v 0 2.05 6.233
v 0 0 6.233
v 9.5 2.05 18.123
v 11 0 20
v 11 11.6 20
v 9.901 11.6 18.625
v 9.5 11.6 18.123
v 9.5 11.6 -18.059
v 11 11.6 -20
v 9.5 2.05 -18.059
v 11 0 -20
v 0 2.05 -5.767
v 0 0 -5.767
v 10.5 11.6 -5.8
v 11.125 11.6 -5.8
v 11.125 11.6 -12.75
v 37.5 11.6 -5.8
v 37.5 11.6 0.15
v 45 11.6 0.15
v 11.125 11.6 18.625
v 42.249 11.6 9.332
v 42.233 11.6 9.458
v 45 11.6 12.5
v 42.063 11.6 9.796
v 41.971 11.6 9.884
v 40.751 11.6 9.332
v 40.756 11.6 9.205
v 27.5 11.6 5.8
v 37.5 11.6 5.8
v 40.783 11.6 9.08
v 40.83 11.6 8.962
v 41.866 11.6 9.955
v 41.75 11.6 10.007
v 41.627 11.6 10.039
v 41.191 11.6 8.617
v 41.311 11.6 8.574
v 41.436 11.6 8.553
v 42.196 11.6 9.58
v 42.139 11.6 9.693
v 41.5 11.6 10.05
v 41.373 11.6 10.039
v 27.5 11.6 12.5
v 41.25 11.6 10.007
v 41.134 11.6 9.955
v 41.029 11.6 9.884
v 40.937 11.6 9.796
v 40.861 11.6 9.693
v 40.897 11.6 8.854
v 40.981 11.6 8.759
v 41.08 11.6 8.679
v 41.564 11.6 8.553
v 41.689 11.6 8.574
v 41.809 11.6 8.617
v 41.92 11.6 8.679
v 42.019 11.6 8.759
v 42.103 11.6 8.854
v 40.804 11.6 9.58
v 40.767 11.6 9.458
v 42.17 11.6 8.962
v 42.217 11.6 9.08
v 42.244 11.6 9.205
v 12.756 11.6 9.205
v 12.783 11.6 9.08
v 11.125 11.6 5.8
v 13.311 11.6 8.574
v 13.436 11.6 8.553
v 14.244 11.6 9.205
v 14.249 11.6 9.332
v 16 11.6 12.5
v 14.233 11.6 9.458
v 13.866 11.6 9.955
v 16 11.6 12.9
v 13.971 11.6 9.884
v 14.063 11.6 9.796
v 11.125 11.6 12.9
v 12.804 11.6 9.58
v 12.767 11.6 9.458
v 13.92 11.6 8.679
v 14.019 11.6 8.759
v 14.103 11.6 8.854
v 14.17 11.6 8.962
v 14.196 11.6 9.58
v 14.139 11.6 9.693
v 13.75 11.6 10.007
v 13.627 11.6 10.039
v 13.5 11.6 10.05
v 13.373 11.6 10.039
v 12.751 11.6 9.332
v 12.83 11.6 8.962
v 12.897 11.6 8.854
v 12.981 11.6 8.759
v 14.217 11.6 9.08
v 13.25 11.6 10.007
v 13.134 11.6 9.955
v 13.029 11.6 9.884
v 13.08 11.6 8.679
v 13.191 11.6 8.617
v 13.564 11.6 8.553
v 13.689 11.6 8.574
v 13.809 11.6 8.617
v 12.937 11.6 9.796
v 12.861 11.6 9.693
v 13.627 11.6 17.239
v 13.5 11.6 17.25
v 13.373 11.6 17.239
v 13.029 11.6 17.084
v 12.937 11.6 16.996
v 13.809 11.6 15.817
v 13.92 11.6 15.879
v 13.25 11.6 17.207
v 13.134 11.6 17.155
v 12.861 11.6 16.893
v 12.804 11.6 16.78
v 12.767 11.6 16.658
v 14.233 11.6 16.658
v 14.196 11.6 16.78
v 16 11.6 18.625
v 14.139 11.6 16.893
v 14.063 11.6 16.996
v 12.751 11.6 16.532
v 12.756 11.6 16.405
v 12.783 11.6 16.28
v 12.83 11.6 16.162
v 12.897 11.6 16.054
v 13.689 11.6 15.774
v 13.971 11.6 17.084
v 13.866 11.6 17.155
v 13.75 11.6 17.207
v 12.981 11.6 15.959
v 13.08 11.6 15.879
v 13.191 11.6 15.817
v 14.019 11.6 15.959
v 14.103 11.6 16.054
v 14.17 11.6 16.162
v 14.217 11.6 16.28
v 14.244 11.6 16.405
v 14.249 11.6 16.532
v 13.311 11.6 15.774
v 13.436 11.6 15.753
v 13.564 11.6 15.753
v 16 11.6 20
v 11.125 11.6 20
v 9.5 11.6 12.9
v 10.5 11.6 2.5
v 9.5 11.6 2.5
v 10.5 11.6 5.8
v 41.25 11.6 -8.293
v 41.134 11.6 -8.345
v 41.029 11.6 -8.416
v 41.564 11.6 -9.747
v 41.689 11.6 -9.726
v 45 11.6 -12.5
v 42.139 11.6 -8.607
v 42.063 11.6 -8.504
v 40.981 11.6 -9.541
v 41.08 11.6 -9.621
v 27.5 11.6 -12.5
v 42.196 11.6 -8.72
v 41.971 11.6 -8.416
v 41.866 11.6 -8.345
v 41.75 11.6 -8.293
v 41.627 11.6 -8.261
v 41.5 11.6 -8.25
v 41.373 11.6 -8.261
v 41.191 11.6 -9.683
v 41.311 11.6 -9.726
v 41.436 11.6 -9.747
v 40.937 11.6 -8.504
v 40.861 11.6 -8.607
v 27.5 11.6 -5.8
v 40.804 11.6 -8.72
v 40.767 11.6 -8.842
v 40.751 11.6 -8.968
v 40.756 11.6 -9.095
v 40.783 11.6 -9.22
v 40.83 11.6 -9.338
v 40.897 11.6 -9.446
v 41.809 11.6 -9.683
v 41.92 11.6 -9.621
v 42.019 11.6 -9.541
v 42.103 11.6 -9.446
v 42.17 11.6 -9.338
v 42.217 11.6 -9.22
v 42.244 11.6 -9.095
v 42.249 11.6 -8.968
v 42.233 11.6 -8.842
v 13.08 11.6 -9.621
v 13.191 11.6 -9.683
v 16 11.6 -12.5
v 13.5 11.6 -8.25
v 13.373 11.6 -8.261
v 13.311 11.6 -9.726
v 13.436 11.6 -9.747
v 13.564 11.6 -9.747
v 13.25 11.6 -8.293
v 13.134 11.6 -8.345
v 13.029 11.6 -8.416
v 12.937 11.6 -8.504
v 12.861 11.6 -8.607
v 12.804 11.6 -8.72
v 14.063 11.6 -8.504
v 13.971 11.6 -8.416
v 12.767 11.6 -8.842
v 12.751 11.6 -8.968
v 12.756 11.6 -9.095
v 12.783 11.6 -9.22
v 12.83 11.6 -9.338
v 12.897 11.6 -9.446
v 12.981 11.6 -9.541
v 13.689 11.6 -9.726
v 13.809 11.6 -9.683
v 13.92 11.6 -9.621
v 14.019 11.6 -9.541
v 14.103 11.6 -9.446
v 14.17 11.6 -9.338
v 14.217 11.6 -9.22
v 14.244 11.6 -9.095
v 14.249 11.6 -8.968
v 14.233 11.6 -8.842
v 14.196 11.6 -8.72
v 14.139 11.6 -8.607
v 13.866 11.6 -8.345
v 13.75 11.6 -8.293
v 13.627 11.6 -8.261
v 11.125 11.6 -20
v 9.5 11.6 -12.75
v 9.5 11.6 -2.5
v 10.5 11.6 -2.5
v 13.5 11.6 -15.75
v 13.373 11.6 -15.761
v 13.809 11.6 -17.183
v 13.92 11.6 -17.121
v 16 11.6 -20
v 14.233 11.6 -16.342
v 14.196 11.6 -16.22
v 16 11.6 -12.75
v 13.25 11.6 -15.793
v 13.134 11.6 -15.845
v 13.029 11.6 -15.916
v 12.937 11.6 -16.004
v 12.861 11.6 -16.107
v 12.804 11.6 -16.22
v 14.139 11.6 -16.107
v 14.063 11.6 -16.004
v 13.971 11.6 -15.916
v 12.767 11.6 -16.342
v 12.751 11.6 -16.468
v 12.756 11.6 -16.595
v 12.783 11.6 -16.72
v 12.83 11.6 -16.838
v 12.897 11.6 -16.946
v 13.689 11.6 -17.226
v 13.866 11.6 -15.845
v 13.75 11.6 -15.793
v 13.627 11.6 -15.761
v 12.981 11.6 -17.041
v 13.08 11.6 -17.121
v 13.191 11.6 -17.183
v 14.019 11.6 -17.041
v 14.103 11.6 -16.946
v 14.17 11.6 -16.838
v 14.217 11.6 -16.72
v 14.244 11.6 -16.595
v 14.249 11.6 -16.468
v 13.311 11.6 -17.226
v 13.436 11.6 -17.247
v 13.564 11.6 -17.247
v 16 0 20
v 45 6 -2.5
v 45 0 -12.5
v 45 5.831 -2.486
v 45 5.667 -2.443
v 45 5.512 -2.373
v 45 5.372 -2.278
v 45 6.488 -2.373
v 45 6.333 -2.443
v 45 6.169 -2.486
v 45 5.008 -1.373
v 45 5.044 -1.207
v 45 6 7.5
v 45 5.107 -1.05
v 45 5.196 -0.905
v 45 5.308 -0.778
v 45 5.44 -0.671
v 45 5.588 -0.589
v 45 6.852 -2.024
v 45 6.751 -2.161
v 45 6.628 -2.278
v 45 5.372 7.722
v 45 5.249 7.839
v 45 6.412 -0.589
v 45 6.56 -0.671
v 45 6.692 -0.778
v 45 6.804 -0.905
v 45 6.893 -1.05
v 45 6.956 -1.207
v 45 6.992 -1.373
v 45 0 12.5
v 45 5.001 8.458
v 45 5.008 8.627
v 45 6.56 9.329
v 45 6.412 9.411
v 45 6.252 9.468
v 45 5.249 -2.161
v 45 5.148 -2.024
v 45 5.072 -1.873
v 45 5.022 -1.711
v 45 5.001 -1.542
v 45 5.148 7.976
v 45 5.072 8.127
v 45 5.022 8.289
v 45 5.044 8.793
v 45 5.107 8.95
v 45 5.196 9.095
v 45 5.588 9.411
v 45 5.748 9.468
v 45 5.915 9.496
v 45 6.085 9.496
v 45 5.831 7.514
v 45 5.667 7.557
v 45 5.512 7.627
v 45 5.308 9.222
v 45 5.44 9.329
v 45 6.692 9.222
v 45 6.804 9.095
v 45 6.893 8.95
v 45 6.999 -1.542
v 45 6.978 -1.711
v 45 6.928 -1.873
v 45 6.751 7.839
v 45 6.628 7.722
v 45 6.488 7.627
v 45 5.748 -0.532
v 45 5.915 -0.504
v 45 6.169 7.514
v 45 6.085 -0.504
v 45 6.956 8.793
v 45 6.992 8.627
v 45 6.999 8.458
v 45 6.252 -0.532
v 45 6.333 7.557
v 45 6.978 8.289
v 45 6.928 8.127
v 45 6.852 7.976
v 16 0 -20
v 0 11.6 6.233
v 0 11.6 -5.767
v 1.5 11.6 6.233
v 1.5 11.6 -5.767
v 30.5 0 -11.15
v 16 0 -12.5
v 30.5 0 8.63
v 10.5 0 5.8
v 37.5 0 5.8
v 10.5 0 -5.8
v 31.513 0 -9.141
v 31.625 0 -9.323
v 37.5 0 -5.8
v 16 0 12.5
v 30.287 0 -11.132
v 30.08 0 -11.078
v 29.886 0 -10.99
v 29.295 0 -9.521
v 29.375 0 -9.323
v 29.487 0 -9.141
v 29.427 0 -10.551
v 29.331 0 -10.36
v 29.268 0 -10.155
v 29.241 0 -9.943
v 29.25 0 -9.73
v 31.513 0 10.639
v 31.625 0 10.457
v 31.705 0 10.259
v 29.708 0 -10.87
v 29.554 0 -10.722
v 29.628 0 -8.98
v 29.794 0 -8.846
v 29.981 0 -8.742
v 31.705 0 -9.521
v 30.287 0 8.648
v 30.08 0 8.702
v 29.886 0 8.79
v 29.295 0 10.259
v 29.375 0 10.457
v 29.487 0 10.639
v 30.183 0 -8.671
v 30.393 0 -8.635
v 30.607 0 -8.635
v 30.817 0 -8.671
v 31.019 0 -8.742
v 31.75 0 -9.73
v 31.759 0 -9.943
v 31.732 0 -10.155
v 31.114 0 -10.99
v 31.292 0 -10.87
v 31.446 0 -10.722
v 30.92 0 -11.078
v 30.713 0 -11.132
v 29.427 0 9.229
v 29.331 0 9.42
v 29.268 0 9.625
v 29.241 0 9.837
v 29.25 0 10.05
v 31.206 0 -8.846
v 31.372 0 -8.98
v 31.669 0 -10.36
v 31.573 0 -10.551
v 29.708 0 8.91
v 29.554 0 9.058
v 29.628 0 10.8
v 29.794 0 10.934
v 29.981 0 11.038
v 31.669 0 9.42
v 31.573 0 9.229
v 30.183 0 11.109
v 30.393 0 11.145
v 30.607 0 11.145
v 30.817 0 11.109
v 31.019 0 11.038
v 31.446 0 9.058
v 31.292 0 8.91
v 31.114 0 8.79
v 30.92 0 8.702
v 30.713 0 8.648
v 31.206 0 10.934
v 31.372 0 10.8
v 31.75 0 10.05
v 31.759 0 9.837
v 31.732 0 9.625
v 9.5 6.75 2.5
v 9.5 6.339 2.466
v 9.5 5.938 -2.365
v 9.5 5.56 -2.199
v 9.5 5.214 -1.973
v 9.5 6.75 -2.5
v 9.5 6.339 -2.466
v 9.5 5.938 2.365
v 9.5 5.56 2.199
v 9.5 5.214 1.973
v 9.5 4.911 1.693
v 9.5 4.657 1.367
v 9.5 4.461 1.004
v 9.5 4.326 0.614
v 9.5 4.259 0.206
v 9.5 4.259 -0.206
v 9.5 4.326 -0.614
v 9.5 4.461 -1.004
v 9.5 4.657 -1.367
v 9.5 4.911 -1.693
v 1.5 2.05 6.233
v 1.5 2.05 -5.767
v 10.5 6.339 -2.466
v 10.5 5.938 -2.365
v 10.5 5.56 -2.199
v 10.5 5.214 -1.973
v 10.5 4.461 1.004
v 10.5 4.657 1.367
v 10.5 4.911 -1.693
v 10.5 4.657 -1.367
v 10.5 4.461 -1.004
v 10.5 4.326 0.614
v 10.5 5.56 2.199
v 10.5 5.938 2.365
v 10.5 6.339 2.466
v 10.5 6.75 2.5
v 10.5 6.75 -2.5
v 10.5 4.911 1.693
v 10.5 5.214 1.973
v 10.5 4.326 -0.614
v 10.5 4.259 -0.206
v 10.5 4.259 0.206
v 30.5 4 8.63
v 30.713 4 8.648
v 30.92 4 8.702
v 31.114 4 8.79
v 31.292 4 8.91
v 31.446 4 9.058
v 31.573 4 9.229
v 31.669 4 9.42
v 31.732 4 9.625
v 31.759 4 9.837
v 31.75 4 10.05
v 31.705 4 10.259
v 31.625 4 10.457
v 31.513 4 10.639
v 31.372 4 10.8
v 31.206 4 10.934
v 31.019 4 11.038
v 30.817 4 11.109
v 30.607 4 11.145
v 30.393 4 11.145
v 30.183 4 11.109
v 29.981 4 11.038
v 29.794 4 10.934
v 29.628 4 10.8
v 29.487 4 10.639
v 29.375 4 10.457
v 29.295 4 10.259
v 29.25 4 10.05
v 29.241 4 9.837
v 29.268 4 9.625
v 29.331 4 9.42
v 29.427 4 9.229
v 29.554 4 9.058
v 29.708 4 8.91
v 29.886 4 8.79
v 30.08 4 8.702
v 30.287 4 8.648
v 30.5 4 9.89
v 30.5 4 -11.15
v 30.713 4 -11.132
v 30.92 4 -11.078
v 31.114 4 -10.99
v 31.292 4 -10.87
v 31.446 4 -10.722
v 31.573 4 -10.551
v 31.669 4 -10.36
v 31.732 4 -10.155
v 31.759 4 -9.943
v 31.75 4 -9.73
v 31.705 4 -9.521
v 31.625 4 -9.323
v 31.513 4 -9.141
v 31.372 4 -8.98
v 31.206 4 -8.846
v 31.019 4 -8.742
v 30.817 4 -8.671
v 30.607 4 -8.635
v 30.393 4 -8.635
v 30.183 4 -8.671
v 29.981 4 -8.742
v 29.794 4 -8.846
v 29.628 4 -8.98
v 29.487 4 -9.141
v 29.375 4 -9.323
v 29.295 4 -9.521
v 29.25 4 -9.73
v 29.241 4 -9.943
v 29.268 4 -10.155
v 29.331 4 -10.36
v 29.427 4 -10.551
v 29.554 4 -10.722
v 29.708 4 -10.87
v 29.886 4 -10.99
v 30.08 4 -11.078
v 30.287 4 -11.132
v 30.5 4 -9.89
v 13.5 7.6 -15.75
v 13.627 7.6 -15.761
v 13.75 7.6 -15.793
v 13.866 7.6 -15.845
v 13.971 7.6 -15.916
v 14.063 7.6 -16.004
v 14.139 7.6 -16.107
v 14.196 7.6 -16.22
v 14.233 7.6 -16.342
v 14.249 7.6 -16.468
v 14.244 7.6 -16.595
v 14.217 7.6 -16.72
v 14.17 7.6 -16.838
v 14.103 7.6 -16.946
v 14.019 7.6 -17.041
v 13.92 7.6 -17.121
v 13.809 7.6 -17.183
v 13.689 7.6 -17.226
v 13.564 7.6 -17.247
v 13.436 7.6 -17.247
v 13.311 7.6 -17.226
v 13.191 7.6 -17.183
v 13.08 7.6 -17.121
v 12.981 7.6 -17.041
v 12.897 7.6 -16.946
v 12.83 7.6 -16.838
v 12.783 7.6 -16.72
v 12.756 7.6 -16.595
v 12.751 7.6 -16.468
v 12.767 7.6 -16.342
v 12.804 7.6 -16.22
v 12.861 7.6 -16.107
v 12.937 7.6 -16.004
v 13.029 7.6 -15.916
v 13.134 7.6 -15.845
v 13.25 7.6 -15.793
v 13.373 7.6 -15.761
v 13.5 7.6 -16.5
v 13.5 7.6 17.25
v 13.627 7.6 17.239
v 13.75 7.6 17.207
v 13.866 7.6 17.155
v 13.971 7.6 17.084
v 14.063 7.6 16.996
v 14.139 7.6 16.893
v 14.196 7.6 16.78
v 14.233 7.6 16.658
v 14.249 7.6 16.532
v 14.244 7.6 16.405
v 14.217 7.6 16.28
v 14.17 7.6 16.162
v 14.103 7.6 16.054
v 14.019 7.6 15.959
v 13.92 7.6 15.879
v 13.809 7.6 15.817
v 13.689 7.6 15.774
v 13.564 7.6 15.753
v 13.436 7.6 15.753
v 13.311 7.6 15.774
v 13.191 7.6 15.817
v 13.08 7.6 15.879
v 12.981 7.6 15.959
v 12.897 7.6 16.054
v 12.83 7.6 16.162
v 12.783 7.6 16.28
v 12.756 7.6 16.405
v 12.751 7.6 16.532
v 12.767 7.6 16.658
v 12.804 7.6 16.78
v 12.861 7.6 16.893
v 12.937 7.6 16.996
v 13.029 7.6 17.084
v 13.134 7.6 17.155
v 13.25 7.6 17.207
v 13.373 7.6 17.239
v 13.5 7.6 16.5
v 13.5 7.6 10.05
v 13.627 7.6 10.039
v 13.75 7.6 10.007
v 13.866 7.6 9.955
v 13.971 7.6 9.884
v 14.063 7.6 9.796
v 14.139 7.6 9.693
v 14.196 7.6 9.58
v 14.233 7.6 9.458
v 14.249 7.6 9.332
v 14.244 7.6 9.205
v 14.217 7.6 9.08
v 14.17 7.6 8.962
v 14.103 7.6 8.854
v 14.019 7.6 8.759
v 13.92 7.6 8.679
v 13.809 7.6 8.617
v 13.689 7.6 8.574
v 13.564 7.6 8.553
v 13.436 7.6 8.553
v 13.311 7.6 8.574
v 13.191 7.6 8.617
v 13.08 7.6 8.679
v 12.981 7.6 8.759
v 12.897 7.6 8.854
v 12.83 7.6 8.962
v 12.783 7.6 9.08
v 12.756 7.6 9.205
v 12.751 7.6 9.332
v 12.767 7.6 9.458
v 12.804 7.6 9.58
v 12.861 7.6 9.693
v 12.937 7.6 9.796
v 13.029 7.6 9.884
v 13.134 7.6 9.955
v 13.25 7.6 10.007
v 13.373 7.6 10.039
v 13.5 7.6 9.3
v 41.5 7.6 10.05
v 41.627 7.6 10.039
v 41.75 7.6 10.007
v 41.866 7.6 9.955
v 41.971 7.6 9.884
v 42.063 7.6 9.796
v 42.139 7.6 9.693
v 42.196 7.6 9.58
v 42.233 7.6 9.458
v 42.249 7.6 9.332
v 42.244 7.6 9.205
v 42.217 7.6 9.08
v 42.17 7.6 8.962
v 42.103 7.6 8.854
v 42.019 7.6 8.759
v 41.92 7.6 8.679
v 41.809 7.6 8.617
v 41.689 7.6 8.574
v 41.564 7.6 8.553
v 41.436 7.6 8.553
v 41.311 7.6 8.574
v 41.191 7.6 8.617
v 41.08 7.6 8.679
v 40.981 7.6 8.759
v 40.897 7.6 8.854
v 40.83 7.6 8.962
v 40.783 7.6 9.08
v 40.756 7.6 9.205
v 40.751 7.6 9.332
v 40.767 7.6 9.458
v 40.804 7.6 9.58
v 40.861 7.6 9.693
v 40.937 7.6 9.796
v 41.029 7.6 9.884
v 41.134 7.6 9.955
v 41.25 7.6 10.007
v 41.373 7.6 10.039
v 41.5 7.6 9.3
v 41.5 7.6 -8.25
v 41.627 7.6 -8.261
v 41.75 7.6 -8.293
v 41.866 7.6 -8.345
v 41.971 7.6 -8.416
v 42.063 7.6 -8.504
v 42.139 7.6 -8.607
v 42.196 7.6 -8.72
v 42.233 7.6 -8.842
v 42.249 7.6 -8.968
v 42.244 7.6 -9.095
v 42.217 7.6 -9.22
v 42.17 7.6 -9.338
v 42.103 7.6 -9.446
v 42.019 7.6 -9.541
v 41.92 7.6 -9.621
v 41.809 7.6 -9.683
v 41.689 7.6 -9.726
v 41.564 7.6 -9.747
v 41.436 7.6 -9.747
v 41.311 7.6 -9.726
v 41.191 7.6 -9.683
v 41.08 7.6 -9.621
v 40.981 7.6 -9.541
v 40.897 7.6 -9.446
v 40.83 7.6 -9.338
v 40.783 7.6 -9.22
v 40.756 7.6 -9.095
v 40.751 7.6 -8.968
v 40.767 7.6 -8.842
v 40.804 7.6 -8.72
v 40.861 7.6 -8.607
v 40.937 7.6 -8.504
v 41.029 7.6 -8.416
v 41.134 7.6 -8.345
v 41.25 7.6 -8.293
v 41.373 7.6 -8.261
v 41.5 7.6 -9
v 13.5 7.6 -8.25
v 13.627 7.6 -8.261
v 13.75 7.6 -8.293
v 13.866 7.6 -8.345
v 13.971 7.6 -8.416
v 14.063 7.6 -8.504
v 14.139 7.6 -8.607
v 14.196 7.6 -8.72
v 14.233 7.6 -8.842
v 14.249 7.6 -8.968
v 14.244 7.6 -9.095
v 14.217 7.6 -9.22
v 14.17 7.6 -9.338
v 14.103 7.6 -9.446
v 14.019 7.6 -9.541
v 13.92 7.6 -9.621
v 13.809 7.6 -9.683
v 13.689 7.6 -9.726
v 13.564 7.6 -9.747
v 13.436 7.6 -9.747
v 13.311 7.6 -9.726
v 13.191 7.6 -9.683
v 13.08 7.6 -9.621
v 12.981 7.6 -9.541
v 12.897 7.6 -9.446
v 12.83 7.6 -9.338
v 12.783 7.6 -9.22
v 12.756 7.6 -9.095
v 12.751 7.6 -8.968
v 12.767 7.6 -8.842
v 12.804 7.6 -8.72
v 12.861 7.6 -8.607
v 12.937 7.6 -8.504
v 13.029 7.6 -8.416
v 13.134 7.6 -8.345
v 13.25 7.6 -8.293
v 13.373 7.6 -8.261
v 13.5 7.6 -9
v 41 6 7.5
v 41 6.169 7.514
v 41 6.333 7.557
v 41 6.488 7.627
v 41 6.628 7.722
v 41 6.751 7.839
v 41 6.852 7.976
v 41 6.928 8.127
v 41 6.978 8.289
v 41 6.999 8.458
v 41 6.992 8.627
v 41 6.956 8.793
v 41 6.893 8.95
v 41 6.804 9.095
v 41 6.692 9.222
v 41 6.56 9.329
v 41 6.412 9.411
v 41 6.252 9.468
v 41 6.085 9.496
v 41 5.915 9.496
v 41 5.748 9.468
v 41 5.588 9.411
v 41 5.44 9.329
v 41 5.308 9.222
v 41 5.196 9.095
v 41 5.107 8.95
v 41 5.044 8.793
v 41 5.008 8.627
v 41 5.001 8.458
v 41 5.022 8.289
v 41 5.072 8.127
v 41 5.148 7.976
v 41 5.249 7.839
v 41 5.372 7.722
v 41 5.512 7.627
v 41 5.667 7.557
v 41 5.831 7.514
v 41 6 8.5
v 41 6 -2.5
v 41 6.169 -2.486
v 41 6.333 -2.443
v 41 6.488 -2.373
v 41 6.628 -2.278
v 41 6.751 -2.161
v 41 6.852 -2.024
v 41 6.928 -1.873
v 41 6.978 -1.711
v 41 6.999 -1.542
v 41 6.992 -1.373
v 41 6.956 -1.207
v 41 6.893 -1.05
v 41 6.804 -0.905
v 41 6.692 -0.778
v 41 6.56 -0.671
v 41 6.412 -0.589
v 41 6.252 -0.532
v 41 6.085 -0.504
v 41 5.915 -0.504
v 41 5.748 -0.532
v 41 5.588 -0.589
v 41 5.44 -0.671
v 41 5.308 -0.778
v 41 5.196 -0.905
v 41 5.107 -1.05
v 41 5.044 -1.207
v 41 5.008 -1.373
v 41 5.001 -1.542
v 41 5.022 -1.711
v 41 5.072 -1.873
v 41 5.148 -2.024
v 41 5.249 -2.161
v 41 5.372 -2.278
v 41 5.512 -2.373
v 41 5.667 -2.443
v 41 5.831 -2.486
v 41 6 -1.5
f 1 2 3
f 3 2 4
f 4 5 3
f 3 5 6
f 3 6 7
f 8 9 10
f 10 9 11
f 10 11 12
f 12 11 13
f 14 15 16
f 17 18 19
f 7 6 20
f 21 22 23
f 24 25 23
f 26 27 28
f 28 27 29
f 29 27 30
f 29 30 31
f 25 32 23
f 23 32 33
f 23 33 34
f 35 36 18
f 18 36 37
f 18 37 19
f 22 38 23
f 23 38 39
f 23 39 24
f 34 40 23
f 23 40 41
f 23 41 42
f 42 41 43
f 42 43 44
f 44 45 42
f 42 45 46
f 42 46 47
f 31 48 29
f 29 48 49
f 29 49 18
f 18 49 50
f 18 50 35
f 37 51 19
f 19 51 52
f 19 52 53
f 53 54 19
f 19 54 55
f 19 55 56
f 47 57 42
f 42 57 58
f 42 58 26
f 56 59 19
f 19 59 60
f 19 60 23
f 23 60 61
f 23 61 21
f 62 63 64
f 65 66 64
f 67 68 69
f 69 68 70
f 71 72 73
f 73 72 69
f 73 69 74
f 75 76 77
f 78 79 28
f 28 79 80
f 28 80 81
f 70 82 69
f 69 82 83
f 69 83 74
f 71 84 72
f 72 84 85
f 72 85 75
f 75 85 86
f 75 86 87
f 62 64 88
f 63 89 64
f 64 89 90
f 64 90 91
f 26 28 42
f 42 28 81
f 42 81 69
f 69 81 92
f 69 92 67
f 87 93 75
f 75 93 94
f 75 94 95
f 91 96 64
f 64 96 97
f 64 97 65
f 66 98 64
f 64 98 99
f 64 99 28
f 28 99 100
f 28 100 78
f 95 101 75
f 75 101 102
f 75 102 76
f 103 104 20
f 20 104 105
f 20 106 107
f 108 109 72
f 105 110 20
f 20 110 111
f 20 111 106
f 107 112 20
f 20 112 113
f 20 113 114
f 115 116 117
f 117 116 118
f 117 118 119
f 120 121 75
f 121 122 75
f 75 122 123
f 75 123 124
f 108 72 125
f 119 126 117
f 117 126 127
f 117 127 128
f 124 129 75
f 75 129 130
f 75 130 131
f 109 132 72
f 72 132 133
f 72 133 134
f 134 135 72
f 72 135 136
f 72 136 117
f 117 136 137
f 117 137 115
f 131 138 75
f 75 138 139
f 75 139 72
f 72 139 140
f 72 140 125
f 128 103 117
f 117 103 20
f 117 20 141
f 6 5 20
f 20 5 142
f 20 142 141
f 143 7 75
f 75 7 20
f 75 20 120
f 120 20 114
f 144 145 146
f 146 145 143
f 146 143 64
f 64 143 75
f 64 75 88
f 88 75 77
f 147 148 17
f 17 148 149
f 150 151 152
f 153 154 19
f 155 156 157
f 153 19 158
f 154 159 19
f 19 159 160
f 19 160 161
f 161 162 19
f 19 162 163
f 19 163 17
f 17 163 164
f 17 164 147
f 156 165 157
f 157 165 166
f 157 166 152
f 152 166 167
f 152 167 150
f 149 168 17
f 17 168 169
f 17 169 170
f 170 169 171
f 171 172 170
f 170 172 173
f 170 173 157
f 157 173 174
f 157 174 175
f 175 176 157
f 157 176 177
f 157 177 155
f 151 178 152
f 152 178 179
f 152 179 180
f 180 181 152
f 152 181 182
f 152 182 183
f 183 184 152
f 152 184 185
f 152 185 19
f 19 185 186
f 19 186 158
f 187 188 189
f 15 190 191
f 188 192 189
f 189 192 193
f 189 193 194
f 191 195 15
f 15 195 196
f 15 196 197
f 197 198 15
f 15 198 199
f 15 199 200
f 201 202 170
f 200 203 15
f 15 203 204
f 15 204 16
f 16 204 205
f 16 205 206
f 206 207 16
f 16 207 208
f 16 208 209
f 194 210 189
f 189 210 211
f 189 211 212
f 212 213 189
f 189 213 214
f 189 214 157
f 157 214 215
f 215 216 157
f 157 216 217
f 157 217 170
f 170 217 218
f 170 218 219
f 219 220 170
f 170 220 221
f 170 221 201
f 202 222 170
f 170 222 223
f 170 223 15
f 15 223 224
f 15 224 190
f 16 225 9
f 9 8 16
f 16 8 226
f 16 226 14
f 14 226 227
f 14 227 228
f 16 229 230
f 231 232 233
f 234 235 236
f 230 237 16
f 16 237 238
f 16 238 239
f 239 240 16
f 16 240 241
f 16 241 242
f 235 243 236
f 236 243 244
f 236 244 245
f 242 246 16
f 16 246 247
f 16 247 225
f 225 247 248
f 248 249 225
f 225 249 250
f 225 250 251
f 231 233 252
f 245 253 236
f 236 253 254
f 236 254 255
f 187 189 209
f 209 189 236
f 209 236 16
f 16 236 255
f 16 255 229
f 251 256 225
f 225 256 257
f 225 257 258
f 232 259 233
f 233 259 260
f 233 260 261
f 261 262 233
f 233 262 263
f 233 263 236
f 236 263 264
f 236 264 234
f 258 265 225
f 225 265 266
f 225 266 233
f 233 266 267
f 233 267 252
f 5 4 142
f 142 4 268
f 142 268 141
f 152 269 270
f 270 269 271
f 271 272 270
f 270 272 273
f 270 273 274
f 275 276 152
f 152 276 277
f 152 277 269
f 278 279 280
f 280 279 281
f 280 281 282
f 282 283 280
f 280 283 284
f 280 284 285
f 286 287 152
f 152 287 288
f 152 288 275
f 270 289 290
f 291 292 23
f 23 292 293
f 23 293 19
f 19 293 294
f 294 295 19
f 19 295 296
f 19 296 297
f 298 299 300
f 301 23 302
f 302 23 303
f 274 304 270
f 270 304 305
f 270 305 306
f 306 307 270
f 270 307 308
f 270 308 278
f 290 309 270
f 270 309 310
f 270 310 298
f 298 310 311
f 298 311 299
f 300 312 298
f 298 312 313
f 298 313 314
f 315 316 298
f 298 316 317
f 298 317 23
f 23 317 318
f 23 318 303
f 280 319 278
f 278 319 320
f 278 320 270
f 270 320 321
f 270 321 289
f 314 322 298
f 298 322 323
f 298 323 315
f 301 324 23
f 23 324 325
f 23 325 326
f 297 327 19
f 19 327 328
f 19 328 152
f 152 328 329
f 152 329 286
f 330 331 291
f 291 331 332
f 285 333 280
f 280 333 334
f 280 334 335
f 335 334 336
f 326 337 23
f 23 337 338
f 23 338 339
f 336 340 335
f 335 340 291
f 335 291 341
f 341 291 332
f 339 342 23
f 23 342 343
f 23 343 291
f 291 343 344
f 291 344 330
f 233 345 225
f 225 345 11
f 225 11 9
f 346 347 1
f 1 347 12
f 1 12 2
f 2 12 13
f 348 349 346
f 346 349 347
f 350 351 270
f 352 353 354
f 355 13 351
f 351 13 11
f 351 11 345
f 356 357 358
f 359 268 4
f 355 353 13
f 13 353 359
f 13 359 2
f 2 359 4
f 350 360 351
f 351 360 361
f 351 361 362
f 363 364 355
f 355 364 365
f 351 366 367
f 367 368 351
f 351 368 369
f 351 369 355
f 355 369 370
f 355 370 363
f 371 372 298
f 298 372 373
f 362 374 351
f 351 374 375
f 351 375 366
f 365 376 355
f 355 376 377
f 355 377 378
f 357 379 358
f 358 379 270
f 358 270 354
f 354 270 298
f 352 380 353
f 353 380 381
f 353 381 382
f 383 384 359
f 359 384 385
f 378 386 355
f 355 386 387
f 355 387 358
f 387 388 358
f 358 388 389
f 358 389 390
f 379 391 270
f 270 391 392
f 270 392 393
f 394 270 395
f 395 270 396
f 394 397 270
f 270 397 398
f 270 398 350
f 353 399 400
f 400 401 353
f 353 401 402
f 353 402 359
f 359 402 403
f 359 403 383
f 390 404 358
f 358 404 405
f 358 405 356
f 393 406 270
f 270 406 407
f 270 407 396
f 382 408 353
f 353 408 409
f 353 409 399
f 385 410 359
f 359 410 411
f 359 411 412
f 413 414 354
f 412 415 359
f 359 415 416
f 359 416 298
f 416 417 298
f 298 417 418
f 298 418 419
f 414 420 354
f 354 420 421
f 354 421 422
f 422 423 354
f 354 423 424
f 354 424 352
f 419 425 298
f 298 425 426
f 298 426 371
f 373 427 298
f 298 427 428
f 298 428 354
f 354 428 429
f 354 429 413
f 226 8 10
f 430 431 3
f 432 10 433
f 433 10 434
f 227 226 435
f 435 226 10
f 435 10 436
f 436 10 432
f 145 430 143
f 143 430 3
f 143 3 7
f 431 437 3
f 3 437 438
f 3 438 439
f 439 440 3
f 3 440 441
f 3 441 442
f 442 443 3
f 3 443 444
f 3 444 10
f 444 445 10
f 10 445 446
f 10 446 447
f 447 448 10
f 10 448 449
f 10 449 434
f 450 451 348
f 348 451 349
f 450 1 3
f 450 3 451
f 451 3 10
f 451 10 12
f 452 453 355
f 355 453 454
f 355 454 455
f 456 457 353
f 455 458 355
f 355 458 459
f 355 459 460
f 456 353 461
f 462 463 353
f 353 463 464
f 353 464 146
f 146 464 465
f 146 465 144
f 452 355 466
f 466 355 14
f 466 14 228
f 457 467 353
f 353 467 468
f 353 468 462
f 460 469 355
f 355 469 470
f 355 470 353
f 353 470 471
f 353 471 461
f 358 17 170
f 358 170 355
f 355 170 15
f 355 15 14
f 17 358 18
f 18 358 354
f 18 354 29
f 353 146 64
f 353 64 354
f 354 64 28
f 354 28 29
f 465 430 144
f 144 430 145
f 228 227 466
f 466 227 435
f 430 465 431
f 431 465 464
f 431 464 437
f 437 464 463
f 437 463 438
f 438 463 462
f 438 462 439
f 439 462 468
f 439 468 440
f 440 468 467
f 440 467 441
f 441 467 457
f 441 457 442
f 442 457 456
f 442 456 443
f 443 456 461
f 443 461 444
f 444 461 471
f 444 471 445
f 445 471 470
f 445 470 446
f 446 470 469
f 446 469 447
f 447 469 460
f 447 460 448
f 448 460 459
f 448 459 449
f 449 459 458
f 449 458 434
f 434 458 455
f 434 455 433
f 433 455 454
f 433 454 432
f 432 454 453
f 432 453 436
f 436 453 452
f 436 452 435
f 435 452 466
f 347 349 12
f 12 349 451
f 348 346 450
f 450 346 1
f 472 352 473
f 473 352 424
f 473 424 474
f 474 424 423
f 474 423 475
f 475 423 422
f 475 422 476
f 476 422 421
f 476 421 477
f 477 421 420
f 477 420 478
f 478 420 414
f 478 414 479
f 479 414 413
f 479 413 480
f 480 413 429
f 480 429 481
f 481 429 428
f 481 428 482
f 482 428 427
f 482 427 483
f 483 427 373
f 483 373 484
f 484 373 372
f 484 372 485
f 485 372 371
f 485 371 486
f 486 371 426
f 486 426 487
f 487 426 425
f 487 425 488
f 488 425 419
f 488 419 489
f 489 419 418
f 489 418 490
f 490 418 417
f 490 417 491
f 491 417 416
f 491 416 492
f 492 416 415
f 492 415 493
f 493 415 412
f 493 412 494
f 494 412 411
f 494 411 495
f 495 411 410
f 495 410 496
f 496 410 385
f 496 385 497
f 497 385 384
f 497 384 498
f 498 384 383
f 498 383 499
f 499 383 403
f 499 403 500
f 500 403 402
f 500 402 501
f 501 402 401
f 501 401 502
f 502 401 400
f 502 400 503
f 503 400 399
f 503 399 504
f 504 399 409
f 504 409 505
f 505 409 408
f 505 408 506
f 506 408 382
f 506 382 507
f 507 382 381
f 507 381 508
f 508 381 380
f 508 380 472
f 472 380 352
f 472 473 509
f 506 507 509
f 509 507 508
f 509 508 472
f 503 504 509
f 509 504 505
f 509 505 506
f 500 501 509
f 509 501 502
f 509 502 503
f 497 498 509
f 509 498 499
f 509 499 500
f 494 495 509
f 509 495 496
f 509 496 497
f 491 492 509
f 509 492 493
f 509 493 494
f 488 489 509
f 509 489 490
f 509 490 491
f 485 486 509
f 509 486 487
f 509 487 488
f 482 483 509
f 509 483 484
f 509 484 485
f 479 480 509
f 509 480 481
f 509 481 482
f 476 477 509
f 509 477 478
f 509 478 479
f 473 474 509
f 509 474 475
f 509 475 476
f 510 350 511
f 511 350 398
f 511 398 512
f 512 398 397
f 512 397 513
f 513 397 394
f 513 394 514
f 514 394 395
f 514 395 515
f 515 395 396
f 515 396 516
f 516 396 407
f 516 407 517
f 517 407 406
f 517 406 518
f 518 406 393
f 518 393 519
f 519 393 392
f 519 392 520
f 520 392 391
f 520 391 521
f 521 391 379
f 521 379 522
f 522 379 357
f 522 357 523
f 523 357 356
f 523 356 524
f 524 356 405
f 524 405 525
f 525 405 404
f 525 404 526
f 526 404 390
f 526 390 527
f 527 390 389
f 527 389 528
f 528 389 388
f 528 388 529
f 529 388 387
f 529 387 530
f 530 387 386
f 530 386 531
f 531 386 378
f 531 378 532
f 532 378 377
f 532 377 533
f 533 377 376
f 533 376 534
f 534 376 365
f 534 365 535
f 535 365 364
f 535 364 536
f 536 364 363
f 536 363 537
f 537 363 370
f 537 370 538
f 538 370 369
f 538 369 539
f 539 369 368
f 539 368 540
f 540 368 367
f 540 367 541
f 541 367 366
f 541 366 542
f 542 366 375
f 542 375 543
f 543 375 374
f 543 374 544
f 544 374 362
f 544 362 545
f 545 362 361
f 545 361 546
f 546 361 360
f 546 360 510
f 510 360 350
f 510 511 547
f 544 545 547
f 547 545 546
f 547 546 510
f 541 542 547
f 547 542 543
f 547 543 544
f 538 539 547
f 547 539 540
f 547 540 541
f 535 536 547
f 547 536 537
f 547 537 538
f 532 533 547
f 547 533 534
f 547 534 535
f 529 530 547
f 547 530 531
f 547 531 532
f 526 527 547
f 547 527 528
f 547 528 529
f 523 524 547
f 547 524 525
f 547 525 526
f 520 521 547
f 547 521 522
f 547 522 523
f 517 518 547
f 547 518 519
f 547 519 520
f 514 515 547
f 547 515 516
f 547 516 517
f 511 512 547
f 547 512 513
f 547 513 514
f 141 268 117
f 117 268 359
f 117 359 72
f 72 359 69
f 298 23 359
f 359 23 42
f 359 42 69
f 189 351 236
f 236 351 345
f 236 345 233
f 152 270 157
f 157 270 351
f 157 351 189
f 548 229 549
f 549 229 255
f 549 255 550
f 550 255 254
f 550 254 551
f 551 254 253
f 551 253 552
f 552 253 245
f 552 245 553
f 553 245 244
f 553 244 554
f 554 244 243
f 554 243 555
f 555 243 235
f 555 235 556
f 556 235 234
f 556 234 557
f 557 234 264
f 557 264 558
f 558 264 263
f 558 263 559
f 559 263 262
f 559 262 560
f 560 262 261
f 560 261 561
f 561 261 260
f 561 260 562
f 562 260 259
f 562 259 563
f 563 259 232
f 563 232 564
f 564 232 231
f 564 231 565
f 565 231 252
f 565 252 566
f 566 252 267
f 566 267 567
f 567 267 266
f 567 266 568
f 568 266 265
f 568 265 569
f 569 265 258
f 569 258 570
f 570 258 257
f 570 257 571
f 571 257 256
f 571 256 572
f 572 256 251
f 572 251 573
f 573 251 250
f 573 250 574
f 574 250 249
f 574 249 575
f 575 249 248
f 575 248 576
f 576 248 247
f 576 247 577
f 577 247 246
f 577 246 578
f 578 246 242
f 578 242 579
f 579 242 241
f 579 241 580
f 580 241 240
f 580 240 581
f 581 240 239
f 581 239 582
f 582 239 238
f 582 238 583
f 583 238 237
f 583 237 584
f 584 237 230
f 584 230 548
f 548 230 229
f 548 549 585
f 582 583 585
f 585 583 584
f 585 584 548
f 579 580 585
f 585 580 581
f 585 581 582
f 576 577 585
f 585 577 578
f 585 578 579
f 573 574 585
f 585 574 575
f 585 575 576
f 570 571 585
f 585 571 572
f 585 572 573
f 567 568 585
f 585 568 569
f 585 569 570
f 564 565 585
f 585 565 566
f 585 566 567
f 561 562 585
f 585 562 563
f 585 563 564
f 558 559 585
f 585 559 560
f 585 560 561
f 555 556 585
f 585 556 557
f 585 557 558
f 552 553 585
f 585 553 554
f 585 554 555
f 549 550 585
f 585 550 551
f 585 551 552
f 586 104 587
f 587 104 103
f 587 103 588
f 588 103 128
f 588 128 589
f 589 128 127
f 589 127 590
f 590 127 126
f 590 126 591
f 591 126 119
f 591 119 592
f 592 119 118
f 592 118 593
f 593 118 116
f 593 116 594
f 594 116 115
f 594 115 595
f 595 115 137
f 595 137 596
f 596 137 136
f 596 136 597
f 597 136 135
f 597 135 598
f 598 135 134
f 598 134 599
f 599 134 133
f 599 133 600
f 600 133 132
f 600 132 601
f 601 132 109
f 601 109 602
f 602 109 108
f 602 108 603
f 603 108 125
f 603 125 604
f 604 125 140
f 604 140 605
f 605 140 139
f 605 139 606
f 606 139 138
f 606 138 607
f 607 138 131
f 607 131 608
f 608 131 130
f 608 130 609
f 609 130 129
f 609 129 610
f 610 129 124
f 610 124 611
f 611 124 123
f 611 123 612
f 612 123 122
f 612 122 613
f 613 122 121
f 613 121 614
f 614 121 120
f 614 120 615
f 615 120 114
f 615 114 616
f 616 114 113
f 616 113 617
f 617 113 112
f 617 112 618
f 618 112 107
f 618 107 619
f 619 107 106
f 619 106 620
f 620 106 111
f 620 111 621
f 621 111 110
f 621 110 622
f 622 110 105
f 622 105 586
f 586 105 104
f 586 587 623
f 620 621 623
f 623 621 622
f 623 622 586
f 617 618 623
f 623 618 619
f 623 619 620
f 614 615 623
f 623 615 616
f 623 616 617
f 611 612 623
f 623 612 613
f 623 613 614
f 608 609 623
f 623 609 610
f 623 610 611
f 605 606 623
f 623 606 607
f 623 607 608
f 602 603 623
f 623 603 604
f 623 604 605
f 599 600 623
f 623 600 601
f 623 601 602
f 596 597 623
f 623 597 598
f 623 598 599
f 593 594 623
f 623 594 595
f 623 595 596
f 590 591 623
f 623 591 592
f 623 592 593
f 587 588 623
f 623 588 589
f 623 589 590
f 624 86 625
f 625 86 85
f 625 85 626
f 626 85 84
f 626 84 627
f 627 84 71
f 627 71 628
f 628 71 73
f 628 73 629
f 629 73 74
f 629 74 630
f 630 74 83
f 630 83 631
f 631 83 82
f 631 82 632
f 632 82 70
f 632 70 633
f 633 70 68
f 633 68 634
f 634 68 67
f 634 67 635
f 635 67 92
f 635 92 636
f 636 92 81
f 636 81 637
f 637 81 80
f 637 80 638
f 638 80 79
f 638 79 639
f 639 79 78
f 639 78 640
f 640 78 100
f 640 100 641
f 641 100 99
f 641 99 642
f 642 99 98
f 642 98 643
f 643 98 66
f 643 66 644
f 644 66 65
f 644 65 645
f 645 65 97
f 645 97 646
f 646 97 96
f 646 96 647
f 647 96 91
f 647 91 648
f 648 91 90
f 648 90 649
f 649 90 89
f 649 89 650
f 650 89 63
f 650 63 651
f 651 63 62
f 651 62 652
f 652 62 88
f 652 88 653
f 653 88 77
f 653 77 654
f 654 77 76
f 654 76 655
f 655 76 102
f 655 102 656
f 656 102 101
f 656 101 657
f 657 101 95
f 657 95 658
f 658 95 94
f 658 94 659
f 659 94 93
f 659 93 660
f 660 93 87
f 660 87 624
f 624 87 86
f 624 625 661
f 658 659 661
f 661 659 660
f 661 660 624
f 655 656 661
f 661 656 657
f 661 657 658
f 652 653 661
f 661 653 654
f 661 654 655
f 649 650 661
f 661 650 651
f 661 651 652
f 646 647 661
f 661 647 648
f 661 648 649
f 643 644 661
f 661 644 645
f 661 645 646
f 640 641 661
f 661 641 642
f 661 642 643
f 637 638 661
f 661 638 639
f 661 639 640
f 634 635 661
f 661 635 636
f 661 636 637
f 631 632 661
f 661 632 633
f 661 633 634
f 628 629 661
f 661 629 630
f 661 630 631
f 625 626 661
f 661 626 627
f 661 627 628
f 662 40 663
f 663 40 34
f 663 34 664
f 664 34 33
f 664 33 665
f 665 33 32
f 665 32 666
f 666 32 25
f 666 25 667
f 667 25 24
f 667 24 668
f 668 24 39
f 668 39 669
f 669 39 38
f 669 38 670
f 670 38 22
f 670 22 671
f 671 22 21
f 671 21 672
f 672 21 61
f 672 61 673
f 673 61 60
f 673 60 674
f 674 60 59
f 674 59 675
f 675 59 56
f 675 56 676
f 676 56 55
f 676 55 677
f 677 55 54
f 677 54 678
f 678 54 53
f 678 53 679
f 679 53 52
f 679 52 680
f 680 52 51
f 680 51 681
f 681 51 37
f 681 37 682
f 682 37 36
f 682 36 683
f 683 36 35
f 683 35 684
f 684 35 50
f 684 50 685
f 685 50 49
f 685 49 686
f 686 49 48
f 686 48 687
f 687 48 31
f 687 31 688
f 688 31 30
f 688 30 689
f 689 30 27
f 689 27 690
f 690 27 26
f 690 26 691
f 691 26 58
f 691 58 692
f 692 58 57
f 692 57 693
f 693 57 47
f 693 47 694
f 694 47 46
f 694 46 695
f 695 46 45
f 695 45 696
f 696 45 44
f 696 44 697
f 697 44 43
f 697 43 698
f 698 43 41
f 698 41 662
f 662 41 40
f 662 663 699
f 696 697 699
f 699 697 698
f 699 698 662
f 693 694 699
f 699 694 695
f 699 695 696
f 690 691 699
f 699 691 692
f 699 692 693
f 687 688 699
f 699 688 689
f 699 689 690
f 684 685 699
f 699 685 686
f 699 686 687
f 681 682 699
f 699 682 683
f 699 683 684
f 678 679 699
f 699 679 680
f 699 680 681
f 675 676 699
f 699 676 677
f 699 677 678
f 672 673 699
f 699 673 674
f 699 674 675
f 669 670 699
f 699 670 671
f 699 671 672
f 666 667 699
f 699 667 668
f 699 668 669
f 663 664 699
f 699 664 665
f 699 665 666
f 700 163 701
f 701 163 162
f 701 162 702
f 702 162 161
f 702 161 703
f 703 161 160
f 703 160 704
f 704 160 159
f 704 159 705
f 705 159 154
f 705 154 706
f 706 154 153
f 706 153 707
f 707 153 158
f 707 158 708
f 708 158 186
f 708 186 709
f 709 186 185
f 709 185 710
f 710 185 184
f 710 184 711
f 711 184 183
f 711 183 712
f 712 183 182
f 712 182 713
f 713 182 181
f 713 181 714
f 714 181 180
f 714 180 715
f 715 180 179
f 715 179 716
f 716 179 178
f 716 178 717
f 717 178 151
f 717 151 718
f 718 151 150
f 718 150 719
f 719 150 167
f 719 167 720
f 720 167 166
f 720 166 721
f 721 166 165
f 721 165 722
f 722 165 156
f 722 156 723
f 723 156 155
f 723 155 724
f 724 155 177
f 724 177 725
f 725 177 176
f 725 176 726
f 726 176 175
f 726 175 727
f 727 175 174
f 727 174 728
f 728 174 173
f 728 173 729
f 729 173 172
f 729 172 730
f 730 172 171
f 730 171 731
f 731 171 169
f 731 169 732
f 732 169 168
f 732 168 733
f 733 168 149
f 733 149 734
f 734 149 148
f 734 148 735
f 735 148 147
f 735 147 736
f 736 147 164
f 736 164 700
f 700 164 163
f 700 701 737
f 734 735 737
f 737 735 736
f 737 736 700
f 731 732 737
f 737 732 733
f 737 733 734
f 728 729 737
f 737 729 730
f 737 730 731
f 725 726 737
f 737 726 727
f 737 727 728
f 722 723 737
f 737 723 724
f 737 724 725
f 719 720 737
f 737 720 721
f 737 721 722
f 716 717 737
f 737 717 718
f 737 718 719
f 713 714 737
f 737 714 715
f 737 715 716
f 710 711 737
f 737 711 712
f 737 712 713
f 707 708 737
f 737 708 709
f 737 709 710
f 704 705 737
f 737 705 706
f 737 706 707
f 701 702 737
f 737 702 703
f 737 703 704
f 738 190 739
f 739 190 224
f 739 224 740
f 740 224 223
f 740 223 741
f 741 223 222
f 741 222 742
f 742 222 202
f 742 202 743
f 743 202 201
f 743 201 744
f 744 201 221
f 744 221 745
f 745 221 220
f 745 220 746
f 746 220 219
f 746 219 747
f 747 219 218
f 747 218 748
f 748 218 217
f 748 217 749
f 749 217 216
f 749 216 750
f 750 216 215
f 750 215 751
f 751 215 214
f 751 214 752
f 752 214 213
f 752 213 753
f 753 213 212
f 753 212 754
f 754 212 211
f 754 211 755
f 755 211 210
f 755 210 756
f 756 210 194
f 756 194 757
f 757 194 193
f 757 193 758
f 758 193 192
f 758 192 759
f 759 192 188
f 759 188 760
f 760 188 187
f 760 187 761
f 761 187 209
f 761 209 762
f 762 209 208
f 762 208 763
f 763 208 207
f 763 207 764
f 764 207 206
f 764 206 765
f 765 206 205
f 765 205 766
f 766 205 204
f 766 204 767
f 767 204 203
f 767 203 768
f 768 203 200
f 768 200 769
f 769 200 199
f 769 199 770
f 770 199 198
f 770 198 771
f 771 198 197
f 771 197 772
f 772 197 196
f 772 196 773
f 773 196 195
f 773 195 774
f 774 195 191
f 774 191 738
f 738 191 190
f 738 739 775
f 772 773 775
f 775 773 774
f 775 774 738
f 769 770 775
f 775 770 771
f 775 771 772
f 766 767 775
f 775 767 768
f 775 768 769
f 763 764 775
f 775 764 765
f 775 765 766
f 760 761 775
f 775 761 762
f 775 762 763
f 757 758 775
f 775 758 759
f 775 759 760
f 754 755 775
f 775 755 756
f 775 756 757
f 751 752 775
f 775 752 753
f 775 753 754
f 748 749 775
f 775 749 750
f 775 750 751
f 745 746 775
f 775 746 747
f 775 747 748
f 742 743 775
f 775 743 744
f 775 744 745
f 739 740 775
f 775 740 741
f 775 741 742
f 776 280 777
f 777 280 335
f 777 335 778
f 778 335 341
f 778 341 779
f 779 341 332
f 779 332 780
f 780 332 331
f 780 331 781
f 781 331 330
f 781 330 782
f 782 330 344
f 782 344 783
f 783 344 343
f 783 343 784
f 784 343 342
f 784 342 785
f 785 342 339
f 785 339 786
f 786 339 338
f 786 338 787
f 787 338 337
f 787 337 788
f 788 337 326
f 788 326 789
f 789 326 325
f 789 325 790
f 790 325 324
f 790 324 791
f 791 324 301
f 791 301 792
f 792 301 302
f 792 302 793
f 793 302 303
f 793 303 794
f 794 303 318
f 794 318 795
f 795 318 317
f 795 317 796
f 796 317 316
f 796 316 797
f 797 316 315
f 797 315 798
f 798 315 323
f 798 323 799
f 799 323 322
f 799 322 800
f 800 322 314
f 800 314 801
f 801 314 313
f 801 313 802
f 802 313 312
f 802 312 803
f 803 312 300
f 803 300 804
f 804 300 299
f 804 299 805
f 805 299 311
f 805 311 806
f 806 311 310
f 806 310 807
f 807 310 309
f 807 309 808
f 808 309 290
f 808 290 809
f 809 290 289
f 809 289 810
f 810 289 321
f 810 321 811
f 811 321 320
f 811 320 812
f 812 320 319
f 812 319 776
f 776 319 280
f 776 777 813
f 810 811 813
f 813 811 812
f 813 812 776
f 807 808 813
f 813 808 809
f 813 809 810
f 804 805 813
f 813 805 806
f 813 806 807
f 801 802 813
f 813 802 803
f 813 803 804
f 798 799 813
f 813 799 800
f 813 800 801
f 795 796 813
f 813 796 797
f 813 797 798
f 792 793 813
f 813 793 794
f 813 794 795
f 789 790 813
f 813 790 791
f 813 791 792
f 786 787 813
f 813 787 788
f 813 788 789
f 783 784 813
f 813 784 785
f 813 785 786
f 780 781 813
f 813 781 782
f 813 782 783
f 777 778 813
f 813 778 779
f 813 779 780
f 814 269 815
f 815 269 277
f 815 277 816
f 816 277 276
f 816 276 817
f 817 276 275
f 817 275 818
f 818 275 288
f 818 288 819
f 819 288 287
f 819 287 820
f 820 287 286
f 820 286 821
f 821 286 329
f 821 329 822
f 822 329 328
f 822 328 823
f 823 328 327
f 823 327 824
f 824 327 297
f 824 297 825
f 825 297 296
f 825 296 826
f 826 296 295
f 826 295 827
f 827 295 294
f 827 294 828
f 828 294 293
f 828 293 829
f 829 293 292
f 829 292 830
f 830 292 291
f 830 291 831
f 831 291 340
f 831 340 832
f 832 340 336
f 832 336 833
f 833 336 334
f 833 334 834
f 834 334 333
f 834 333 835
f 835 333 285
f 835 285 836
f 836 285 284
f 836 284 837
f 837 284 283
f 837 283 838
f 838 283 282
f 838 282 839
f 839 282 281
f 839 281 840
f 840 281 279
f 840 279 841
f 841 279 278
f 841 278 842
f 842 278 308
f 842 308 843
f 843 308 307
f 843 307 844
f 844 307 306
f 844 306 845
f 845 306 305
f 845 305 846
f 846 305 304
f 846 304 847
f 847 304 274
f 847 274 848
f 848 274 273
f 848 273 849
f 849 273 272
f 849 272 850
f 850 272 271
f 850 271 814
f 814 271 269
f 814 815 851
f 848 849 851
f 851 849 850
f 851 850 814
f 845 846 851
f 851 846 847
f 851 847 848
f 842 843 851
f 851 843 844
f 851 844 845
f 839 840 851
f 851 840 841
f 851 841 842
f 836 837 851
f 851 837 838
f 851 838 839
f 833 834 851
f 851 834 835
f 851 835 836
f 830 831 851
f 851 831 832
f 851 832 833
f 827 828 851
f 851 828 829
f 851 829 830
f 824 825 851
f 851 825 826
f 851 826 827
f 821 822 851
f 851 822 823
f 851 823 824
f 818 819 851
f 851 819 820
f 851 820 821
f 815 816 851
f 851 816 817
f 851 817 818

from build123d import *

# Parameters (mm, degrees)
BOSS_EXTRUDE1_DEPTH = 11.6
CUT_EXTRUDE1_DEPTH  = 9.55
SKETCH5_W           = 27
SKETCH5_H           = 11.6
CUT_EXTRUDE3_DEPTH  = 51.592094244
CUT_EXTRUDE4_DEPTH  = 3
CUT_EXTRUDE5_DEPTH  = 9.55
SKETCH8_R           = 1.26
CUT_EXTRUDE6_DEPTH  = 4
SKETCH9_W           = 29
SKETCH9_H           = 7.5
CUT_EXTRUDE7_DEPTH  = 51.592094244
SKETCH10_R          = 0.75
CUT_EXTRUDE8_DEPTH  = 4
SKETCH11_R          = 1
CUT_EXTRUDE9_DEPTH  = 4


with BuildPart() as part:
    # Sketch2 → Boss-Extrude1 (new body)
    with BuildSketch(Plane(origin=(0, 0, 0), x_dir=(1, 0, 0), z_dir=(0, 1, 0))):
        Polygon((0, 5.767018283), (0, -6.232981717), (11, -20), (45, -20), (45, 20), (11, 20), align=None)
    extrude(amount=BOSS_EXTRUDE1_DEPTH)

    # Sketch3 → Cut-Extrude1 (cut)
    with BuildSketch(Plane(origin=(0, 11.6, 0), x_dir=(1, 0, 0), z_dir=(0, 1, 0))):
        Polygon((1.5, 7.707879426), (1.5, -8.110302392), (9.5, -18.122679325), (9.5, 18.059138857), align=None)
    extrude(amount=-CUT_EXTRUDE1_DEPTH, mode=Mode.SUBTRACT)

    # Sketch5 → Cut-Extrude3 (cut, through all)
    with BuildSketch(Plane(origin=(0, 11.6, 0), x_dir=(1, 0, 0), z_dir=(0, 1, 0))):
        with Locations((24, 0)):
            Rectangle(SKETCH5_W, SKETCH5_H)
    extrude(amount=-CUT_EXTRUDE3_DEPTH, mode=Mode.SUBTRACT)

    # Sketch6 → Cut-Extrude4 (cut)
    with BuildSketch(Plane(origin=(10.5, 0, 0), x_dir=(0, 0, -1), z_dir=(1, 0, 0))):
        with BuildLine():
            Line((2.5, 6.75), (2.5, 11.6))
            Line((2.5, 11.6), (-2.5, 11.6))
            Line((-2.5, 11.6), (-2.5, 6.75))
            ThreePointArc((-2.5, 6.75), (0, 4.25), (2.5, 6.75))
        make_face()
    extrude(amount=-CUT_EXTRUDE4_DEPTH, mode=Mode.SUBTRACT)

    # Sketch7 → Cut-Extrude5 (cut)
    with BuildSketch(Plane(origin=(0, 11.6, 0), x_dir=(1, 0, 0), z_dir=(0, 1, 0))):
        Polygon((1.5, 7.707879426), (0, 5.767018283), (1.5, 5.767018283), align=None)
        Polygon((0, -6.232981717), (1.5, -6.232981717), (1.5, -8.110302392), align=None)
    extrude(amount=-CUT_EXTRUDE5_DEPTH, mode=Mode.SUBTRACT)

    # Sketch8 → Cut-Extrude6 (cut)
    with BuildSketch(Plane.XZ):
        with Locations(Location((30.5, 9.89, 0), (0, 0, 270))):
            Circle(SKETCH8_R)
        with Locations(Location((30.5, -9.89, 0), (0, 0, 270))):
            Circle(SKETCH8_R)
    extrude(amount=-CUT_EXTRUDE6_DEPTH, mode=Mode.SUBTRACT)

    # Sketch9 → Cut-Extrude7 (cut, through all)
    with BuildSketch(Plane.XZ):
        with Locations((30.5, 16.25)):
            Rectangle(SKETCH9_W, SKETCH9_H)
        with Locations((30.5, -16.25)):
            Rectangle(SKETCH9_W, SKETCH9_H)
    extrude(amount=-CUT_EXTRUDE7_DEPTH, mode=Mode.SUBTRACT)

    # Sketch10 → Cut-Extrude8 (cut)
    with BuildSketch(Plane(origin=(0, 11.6, 0), x_dir=(1, 0, 0), z_dir=(0, 1, 0))):
        with Locations(Location((13.5, 16.5, 0), (0, 0, 270))):
            Circle(SKETCH10_R)
        with Locations(Location((13.5, 9, 0), (0, 0, 270))):
            Circle(SKETCH10_R)
        with Locations(Location((41.5, 9, 0), (0, 0, 270))):
            Circle(SKETCH10_R)
        with Locations(Location((41.5, -9.3, 0), (0, 0, 270))):
            Circle(SKETCH10_R)
        with Locations(Location((13.5, -9.3, 0), (0, 0, 270))):
            Circle(SKETCH10_R)
        with Locations(Location((13.5, -16.5, 0), (0, 0, 270))):
            Circle(SKETCH10_R)
    extrude(amount=-CUT_EXTRUDE8_DEPTH, mode=Mode.SUBTRACT)

    # Sketch11 → Cut-Extrude9 (cut)
    with BuildSketch(Plane(origin=(45, 0, 0), x_dir=(0, 0, -1), z_dir=(1, 0, 0))):
        with Locations((-8.5, 6)):
            Circle(SKETCH11_R)
        with Locations((1.5, 6)):
            Circle(SKETCH11_R)
    extrude(amount=-CUT_EXTRUDE9_DEPTH, mode=Mode.SUBTRACT)


solid = part.part
